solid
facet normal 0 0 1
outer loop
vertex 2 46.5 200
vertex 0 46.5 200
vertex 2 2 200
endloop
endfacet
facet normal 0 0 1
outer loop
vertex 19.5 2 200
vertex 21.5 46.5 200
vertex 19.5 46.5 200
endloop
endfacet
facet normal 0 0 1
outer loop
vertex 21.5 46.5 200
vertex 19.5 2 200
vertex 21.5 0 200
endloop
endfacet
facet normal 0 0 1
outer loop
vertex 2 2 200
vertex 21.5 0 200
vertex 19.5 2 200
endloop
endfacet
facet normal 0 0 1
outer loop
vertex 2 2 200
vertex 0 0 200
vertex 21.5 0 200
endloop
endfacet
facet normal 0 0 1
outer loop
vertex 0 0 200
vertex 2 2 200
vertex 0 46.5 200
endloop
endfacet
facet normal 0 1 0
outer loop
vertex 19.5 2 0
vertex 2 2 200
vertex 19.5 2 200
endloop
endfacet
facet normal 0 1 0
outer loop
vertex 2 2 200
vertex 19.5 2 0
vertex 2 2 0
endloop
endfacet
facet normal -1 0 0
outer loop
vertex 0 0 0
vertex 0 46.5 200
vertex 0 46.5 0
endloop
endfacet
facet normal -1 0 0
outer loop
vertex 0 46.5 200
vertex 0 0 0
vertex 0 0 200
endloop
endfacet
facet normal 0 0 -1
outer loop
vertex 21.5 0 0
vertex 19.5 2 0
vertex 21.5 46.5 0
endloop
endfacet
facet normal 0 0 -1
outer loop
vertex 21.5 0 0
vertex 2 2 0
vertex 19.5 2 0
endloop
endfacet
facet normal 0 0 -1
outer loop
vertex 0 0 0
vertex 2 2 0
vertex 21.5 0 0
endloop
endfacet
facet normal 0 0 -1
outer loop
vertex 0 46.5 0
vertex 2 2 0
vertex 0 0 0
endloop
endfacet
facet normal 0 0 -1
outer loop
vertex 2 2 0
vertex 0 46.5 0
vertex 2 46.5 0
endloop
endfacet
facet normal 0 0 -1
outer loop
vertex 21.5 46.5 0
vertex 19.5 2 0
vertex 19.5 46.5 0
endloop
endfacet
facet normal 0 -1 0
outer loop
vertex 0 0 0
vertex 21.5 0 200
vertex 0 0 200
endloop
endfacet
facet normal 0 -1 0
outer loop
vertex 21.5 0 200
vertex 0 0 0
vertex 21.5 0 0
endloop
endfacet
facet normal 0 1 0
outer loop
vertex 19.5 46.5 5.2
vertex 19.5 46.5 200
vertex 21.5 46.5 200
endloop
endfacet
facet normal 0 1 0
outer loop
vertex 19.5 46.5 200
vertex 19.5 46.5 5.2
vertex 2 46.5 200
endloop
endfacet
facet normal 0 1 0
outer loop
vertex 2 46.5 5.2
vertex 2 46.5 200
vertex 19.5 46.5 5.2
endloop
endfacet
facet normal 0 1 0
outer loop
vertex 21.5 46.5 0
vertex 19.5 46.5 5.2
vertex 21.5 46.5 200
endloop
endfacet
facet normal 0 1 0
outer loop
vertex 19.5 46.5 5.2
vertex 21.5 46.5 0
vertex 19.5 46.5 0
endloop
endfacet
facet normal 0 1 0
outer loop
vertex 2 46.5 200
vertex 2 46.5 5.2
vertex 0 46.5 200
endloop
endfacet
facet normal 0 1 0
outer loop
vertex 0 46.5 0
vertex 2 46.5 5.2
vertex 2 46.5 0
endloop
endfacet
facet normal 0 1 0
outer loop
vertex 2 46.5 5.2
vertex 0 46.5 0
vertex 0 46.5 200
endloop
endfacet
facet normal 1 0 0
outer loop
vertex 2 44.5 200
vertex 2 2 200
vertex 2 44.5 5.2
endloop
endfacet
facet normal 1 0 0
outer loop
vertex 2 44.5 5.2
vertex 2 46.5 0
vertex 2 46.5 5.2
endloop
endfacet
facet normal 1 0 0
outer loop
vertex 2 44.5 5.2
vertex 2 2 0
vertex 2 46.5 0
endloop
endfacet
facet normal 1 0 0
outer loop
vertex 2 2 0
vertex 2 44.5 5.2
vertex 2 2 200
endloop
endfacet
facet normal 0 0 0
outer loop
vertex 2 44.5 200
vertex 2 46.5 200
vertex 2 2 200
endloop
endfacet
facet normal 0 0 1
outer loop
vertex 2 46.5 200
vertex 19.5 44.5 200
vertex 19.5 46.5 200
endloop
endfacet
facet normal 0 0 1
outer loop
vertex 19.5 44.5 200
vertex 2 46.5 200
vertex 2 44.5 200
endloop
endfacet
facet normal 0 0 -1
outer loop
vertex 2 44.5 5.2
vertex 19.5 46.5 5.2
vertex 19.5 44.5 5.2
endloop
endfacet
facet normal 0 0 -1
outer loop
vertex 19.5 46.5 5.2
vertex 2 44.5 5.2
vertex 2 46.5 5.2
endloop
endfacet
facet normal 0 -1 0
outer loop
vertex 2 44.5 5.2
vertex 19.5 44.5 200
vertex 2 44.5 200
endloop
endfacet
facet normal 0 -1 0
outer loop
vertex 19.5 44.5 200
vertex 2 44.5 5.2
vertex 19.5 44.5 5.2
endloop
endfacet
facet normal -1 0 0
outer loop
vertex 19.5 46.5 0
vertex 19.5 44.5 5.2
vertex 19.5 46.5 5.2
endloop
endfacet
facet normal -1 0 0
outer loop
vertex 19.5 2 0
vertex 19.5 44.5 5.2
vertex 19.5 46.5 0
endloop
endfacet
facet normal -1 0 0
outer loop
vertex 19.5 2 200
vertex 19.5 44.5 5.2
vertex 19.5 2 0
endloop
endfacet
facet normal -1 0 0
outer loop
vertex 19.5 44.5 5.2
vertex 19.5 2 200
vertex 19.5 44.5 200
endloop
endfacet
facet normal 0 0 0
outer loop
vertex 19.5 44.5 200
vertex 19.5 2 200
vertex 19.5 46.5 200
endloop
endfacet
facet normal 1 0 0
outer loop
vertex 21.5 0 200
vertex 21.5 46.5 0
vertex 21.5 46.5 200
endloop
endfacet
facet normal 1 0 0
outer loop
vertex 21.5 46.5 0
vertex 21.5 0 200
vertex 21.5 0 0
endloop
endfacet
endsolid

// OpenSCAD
// file: ../base/cube_stacker_base.scad
//Includes 
use <../base/cube_base.scad>

//Model information
model_length = 10;
model_depth = 10;
model_height = 10;
model_offset = 0;
box_height = 1;
model_opening = 0;
model_slack = 10;
stacker_height = 100;
stacker_wall_thickness = 10;

/*
translate([model_offset, model_offset, 0]){
	box(model_length, model_depth, model_height, 1);
}
*/

module stacker(model_length, model_depth, model_height, model_opening, stacker_height, stacker_wall_thickness, box_height, model_slack){
	//Calculated
	wall_length_calc = model_length * model_slack;
	model_depth_calc = model_depth * model_slack;
	model_height_calc = model_height * model_slack;

	//Wall 
	wall_length = [wall_length_calc, stacker_wall_thickness, wall_length_calc, stacker_wall_thickness];
	wall_depth = [stacker_wall_thickness, model_depth_calc, stacker_wall_thickness, model_depth_calc];
	wall_height = [stacker_height, stacker_height, stacker_height -model_opening, stacker_height];
	wall_box_height = [box_height, box_height, box_height, box_height];
	wall_offset = [
	[0, 0, 0],
	[0, 0, 0],
	[0, model_depth_calc - stacker_wall_thickness, model_opening],
	[wall_length_calc, 0, 0]
	];

	wall = [
	wall_length,
	wall_depth,
	wall_height,
	wall_box_height,
	wall_offset
	];

	for(segment = [0:3]){
		translate(wall[4][segment]){
			box(wall[0][segment], wall[1][segment], wall[2][segment], wall[3][segment]);
		}
	}
}
stacker(model_length, model_depth, model_height, model_opening, stacker_height, stacker_wall_thickness, box_height, model_slack);
// file: ../base/cube_base.scad
input_length = 10;
input_height = 10;
input_depth = 10;
box_size = 1;

module box(input_length, input_depth, input_height, box_size){
	length = input_length;
	height = input_height - box_size;
	depth = input_depth;

	bottom_back_left =   [0,      0,     0];
	top_back_left =      [0,      0,     height];
	bottom_front_left =  [0,      depth, 0];
	top_front_left =     [0,      depth, height];
	bottom_back_right =  [length, 0,     0];
	top_back_right =     [length, 0,     height];
	bottom_front_right = [length, depth, 0];
	top_front_right =    [length, depth, height];

	box = [bottom_back_left, top_back_left, bottom_front_left, top_front_left, bottom_back_right, top_back_right, bottom_front_right, top_front_right];

	hull(){
		for(position = box){
			translate(position){
				cube(box_size);
			}
		}
	}
}

box(input_length, input_depth, input_height, box_size);
// main file
//Includes 
use <../base/cube_base.scad>
use <../base/cube_stacker_base.scad>

//Model information
model_length = 15;
model_depth = 35;
model_height = 4;
model_offset = 3;
model_opening = model_height * 1.3;
box_height = 1;
model_slack = 1.3;
stacker_height = model_height * 50;
stacker_wall_thickness = 1;

/*
translate([model_offset, model_offset, 0]){
	color("red"){
		box(model_length, model_depth, model_height, 1);
	}
}
*/

stacker(model_length, model_depth, model_height, model_opening, stacker_height, stacker_wall_thickness, box_height, model_slack);
